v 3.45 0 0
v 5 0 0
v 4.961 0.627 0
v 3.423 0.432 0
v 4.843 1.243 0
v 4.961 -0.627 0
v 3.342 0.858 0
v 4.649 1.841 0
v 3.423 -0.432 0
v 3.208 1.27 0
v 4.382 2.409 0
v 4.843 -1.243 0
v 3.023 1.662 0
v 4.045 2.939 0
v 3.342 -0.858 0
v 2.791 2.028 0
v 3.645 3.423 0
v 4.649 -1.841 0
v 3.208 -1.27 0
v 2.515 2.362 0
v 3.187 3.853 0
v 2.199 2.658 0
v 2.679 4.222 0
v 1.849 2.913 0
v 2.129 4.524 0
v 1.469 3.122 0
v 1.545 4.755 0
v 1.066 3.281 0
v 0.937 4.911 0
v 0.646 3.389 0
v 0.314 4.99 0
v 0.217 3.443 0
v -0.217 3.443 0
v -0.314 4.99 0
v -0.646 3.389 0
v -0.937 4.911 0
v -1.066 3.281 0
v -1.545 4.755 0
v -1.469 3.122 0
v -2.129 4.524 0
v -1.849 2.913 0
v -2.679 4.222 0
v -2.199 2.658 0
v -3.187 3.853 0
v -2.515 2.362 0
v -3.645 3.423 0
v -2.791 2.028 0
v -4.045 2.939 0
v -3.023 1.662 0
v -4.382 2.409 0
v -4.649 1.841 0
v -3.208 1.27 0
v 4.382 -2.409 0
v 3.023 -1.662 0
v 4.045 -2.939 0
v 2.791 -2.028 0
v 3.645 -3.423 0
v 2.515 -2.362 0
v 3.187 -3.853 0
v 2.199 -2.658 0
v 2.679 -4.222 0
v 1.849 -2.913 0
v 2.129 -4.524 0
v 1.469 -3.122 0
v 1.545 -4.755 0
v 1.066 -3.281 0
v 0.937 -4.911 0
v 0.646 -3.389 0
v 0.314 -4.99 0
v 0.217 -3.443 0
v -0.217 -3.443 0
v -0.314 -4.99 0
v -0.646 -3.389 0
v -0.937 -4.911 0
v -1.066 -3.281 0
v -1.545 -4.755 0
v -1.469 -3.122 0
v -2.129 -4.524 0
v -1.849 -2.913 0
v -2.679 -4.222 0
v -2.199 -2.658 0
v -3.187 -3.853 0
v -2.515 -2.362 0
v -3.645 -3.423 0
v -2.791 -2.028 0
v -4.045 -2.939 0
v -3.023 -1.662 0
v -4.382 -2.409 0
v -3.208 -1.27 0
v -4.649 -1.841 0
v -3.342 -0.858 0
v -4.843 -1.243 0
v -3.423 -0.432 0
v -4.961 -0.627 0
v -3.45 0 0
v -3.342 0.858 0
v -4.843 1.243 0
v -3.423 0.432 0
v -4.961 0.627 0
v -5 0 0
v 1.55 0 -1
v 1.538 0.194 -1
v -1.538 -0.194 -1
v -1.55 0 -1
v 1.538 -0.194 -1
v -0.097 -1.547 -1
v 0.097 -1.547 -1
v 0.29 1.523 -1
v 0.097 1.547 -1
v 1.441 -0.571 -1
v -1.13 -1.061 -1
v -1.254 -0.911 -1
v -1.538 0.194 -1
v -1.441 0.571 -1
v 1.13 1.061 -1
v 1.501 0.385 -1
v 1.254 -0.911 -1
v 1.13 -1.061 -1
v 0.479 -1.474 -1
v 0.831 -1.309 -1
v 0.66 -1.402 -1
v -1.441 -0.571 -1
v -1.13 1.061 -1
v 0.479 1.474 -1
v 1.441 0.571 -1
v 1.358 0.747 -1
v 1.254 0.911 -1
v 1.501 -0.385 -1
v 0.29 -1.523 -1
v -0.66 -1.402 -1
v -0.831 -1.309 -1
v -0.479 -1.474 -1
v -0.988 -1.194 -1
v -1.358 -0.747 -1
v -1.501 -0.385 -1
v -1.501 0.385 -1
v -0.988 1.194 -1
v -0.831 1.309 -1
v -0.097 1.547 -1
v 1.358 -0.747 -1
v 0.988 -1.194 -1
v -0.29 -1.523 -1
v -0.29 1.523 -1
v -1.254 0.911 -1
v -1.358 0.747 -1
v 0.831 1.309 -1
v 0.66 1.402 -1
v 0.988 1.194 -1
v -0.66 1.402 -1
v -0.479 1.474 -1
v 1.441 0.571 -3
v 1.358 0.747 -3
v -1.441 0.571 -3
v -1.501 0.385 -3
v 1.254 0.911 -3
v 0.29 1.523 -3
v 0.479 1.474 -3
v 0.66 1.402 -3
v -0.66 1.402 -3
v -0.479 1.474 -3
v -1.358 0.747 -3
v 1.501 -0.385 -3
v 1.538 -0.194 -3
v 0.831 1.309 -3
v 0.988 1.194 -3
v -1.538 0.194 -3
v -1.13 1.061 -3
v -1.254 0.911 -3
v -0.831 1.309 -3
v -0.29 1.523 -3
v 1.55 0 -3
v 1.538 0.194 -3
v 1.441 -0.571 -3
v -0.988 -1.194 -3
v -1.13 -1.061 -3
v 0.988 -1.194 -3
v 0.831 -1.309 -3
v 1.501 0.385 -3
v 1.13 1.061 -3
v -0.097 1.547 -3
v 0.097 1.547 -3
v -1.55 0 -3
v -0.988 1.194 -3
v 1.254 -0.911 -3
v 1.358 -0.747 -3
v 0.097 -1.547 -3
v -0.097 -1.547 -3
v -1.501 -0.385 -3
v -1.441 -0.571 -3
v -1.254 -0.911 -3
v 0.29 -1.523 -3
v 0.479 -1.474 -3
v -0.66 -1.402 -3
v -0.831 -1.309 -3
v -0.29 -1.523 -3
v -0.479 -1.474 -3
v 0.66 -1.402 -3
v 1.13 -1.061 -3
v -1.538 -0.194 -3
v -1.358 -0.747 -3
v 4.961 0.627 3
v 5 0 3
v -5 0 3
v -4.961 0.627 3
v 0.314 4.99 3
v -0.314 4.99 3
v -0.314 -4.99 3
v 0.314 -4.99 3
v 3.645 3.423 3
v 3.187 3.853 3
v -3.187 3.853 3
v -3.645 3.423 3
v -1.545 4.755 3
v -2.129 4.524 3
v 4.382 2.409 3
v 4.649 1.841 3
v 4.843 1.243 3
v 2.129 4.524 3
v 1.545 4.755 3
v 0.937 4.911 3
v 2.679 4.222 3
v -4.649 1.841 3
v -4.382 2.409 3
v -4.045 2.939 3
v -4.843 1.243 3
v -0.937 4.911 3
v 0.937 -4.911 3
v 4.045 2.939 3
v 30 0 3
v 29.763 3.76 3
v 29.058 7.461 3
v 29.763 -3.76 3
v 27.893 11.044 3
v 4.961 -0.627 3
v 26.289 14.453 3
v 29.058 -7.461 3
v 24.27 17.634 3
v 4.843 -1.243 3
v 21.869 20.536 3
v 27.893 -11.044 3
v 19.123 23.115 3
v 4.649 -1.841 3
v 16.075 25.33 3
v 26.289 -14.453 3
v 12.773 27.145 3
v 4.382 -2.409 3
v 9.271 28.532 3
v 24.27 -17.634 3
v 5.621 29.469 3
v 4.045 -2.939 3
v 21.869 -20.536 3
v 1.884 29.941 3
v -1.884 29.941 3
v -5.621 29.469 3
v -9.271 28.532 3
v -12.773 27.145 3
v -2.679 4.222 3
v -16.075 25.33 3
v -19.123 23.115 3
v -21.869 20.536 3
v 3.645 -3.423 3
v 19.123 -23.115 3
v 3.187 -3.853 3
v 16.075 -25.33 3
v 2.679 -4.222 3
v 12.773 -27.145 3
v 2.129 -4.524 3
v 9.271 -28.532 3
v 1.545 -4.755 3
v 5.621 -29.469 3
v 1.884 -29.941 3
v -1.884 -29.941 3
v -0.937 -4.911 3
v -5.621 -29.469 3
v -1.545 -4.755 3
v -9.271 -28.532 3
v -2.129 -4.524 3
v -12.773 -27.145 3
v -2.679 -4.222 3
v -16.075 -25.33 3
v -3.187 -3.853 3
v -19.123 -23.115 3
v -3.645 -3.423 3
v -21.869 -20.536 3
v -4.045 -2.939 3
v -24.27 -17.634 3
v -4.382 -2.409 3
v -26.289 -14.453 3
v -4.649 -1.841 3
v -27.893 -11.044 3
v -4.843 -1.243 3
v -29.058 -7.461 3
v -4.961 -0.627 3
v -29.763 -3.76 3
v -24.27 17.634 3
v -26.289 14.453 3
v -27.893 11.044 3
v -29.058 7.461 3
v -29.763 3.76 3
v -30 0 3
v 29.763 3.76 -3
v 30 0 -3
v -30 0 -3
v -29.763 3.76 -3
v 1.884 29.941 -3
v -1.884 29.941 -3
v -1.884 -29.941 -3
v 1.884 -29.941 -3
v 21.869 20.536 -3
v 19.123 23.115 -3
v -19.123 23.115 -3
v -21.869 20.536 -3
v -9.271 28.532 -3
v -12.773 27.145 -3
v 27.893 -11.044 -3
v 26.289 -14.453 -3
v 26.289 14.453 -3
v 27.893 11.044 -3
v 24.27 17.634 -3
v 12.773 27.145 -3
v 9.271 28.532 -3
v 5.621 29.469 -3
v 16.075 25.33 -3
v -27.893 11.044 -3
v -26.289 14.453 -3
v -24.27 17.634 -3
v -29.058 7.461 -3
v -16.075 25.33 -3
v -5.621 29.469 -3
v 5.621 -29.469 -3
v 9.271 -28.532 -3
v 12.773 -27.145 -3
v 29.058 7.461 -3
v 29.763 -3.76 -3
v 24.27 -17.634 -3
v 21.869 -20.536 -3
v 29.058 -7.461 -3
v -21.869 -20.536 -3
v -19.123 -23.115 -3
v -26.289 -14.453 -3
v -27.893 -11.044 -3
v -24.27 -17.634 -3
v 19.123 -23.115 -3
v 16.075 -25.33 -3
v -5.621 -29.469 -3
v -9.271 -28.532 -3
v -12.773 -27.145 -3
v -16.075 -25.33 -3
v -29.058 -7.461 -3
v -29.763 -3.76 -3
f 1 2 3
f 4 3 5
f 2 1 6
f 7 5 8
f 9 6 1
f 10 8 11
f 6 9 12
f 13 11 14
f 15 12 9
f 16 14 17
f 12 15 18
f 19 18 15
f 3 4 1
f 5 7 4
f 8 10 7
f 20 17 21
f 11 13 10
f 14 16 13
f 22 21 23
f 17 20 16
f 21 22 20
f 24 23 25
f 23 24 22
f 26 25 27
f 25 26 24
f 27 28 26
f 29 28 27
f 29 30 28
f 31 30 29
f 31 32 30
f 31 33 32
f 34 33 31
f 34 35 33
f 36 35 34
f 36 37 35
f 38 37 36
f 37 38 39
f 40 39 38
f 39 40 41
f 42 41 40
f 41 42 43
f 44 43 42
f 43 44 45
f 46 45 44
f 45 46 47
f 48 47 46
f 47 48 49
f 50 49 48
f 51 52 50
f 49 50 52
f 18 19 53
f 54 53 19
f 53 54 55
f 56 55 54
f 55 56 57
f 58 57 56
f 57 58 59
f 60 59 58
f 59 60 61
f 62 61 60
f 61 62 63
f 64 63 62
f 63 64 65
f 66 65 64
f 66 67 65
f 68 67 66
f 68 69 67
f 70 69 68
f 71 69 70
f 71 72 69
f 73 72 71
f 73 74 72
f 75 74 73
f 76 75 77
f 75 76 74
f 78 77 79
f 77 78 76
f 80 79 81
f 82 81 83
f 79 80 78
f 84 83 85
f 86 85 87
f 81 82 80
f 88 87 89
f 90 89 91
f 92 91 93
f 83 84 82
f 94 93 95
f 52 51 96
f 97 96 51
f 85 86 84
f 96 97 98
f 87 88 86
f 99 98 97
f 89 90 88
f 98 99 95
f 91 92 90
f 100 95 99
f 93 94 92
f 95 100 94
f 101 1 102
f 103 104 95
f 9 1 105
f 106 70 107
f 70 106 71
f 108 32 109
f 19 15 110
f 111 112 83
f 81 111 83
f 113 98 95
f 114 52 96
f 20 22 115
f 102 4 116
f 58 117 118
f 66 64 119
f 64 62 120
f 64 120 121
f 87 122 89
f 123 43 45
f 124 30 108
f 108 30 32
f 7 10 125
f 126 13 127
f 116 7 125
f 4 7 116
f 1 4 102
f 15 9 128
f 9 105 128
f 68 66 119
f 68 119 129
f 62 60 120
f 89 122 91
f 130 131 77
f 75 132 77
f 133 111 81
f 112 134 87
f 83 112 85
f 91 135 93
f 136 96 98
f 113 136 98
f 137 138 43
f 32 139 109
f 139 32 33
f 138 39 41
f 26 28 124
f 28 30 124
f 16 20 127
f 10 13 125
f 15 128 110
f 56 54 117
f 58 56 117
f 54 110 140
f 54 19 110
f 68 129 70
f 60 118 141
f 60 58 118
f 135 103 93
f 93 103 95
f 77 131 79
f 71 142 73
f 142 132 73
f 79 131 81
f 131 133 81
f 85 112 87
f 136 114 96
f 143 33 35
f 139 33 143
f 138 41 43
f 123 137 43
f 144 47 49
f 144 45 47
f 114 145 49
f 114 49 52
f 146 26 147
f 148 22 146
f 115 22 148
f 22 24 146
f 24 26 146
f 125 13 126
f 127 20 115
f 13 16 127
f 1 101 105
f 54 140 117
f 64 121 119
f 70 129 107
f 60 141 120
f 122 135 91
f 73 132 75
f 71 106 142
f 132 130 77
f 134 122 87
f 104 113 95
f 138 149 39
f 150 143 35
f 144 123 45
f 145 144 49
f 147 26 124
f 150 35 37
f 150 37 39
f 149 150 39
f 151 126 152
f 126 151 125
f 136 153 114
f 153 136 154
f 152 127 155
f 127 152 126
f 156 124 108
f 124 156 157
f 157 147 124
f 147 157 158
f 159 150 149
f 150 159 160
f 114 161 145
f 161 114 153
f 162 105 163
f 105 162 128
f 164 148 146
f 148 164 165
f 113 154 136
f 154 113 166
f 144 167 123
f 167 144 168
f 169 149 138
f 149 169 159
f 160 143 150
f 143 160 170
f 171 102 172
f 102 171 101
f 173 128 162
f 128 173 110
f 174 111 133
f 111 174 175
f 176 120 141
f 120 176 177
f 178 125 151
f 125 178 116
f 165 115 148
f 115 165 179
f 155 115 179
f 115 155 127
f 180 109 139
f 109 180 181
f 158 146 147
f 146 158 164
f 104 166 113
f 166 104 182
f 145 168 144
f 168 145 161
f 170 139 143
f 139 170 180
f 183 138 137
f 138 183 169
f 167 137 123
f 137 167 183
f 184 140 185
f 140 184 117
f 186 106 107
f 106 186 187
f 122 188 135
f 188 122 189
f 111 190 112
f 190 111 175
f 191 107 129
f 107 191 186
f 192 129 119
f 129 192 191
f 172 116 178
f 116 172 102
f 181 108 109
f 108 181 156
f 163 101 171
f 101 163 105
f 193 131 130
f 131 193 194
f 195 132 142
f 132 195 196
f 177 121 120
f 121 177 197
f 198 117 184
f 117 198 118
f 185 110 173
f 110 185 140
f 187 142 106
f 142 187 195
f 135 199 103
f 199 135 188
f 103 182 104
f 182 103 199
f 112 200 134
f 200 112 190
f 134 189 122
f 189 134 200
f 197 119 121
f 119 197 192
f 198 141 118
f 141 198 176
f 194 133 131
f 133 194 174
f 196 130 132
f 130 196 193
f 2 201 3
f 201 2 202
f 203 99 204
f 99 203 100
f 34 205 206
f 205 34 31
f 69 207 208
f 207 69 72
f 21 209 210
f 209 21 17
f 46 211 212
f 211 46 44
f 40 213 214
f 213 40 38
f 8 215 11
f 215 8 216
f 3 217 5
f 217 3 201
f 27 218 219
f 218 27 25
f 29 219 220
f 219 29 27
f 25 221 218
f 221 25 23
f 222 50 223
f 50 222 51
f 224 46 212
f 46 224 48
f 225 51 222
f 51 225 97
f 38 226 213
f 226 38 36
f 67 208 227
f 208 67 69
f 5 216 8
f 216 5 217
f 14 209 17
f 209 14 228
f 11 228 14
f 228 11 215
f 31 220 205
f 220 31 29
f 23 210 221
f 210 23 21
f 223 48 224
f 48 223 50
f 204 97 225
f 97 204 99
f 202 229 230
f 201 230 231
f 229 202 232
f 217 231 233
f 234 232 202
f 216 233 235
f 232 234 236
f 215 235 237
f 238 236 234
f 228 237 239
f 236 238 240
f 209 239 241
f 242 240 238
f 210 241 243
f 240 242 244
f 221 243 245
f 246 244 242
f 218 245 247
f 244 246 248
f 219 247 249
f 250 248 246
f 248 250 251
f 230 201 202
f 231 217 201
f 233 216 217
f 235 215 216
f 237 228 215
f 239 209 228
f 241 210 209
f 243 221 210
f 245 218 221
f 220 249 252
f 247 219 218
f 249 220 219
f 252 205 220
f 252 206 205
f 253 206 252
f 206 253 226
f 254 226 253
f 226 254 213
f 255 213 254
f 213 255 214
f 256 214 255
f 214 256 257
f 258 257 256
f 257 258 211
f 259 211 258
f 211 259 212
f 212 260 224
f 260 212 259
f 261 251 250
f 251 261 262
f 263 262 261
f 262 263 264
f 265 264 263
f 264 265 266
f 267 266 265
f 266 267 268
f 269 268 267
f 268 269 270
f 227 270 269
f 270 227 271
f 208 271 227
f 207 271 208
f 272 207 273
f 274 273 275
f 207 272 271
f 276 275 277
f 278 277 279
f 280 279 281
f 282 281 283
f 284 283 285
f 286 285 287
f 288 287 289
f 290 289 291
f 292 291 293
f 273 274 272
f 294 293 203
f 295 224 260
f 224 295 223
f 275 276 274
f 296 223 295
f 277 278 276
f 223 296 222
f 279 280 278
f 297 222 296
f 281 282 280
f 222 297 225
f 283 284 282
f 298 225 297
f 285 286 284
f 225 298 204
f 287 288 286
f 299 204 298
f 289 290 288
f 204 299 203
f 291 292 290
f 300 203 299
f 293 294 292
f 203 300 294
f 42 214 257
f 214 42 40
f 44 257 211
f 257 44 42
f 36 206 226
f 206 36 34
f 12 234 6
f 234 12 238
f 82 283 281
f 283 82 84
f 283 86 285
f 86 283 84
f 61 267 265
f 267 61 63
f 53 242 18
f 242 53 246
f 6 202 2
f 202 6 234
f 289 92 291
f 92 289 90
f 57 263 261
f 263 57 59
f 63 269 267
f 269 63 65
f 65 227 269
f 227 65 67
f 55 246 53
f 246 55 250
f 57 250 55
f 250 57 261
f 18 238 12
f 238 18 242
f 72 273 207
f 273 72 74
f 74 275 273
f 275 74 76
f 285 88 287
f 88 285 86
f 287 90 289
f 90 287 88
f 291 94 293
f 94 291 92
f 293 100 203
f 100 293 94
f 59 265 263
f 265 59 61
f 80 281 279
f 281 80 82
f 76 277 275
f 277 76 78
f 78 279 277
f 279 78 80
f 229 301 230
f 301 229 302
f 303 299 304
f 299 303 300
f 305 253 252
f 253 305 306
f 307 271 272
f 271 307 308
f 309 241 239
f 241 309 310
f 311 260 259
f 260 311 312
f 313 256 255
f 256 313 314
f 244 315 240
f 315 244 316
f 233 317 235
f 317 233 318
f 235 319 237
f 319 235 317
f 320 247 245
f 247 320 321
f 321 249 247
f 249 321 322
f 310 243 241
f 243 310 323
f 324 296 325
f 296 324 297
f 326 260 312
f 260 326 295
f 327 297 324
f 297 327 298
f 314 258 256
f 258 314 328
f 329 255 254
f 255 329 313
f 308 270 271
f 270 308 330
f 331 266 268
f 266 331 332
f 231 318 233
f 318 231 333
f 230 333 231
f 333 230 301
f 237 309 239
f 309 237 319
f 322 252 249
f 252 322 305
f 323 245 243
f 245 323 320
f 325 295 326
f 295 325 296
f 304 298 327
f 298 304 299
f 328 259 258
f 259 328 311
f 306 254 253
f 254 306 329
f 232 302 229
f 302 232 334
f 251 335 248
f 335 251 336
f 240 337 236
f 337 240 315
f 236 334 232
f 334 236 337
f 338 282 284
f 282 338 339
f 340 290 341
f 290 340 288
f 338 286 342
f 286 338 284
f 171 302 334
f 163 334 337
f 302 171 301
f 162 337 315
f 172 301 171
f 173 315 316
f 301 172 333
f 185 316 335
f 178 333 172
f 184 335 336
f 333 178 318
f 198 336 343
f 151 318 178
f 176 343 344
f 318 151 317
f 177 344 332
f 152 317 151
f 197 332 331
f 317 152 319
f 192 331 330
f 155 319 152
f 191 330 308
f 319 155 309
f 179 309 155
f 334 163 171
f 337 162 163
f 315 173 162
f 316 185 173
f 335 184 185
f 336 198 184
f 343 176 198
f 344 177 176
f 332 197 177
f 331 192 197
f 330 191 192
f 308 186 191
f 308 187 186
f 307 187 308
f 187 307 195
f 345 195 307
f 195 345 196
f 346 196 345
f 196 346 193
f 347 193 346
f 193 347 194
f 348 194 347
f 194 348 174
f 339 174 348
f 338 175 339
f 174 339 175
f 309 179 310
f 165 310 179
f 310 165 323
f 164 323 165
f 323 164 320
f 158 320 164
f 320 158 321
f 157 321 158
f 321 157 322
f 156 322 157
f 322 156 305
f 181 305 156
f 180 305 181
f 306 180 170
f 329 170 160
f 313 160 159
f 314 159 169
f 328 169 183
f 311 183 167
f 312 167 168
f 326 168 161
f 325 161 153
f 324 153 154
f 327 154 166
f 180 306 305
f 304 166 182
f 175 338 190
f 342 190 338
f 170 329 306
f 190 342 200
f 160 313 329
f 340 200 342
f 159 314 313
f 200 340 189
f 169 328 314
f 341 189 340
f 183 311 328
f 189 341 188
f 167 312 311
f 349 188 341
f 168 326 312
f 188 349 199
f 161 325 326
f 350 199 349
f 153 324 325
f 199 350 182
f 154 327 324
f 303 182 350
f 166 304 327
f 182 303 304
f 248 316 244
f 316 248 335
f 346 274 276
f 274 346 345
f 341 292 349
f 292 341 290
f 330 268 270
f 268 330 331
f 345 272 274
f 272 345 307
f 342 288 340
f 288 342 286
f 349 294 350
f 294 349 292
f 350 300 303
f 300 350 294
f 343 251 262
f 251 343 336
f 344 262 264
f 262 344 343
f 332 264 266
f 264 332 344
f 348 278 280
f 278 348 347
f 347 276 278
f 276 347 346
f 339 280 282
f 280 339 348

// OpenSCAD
$fn = 50;

difference() {
	union() {
		translate(v = [0, 0, -3.0]) {
			cylinder(h = 6, r = 30.0);
		}
	}
	union() {
		translate(v = [0, 0, 0]) {
			rotate(a = [0, 0, 0]) {
				difference() {
					union() {
						translate(v = [0, 0, -6.0]) {
							cylinder(h = 6, r = 1.25);
						}
						translate(v = [0, 0, -1.0]) {
							cylinder(h = 1.0, r1 = 1.55, r2 = 3.45);
						}
						translate(v = [0, 0, -6.0]) {
							cylinder(h = 6, r = 1.55);
						}
						translate(v = [0, 0, -6.0]) {
							cylinder(h = 6, r = 1.25);
						}
					}
					union();
				}
			}
		}
		#cylinder(h = 3, r = 5.0);
	}
}
